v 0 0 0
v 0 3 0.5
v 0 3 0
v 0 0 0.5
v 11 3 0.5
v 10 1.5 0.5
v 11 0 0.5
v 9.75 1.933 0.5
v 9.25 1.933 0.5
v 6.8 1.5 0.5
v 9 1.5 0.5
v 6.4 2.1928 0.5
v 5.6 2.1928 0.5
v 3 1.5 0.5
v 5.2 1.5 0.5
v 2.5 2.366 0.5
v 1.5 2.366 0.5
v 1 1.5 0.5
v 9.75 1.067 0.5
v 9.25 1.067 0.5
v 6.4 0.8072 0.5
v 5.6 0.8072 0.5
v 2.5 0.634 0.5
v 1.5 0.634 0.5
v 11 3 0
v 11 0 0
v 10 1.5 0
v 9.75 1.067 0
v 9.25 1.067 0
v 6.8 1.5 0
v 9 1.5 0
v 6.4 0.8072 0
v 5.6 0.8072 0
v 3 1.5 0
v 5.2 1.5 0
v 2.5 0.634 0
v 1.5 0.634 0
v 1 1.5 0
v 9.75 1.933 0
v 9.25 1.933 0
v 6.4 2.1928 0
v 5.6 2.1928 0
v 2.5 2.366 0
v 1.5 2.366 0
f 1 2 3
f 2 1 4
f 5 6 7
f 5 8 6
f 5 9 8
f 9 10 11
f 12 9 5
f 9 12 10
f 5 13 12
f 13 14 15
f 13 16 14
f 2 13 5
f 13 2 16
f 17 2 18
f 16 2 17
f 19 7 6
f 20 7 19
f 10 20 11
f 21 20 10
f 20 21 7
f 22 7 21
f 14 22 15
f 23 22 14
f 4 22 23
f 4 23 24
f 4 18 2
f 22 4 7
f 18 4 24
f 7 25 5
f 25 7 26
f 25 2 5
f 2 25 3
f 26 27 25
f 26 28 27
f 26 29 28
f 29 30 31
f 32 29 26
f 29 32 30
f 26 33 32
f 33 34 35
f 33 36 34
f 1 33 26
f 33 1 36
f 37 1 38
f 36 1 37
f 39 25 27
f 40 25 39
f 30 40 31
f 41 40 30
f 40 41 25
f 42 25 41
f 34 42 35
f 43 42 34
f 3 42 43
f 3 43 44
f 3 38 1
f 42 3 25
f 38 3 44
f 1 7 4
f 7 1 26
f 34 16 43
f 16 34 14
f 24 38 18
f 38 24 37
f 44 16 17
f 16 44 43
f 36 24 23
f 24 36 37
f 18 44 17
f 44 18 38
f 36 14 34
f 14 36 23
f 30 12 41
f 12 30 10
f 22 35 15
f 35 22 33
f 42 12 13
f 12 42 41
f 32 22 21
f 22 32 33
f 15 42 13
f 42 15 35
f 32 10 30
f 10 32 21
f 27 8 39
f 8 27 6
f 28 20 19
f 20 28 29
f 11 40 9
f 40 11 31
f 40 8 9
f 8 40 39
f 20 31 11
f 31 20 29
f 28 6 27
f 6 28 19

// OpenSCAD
difference() {
  translate([5.5000000000, 1.5000000000, 0.2500000000]) {
    scale([11.0000000000, 3.0000000000, 0.5000000000]) {
      translate([-0.5000000000, -0.5000000000, -0.5000000000]) {
        cube([1, 1, 1]);
      }
    }
  }
  union() {
    union() {
      difference() {
        translate([9.5000000000, 1.5000000000, 0.2500000000]) {
          scale([1.0000000000, 0.8660000000, 0.5000000000]) {
            rotate([0.0000000000, 0.0000000000, -0.0000000000]) {
              scale([0.5, 0.577, 1]) cylinder($fn = 6, center = true);
            }
          }
        }
        /* EMPTY */ sphere(r = 0);
      }
      difference() {
        translate([6.0000000000, 1.4999996667, 0.2500000000]) {
          scale([1.6000000000, 1.3860000000, 0.5000000000]) {
            rotate([0.0000000000, 0.0000000000, -0.0000000000]) {
              scale([0.5, 0.577, 1]) cylinder($fn = 6, center = true);
            }
          }
        }
        /* EMPTY */ sphere(r = 0);
      }
    }
    difference() {
      translate([2.0000000000, 1.4999994660, 0.2500000000]) {
        scale([2.0000000000, 1.7320000000, 0.5000000000]) {
          rotate([0.0000000000, 0.0000000000, -0.0000000000]) {
            scale([0.5, 0.577, 1]) cylinder($fn = 6, center = true);
          }
        }
      }
      /* EMPTY */ sphere(r = 0);
    }
  }
}
